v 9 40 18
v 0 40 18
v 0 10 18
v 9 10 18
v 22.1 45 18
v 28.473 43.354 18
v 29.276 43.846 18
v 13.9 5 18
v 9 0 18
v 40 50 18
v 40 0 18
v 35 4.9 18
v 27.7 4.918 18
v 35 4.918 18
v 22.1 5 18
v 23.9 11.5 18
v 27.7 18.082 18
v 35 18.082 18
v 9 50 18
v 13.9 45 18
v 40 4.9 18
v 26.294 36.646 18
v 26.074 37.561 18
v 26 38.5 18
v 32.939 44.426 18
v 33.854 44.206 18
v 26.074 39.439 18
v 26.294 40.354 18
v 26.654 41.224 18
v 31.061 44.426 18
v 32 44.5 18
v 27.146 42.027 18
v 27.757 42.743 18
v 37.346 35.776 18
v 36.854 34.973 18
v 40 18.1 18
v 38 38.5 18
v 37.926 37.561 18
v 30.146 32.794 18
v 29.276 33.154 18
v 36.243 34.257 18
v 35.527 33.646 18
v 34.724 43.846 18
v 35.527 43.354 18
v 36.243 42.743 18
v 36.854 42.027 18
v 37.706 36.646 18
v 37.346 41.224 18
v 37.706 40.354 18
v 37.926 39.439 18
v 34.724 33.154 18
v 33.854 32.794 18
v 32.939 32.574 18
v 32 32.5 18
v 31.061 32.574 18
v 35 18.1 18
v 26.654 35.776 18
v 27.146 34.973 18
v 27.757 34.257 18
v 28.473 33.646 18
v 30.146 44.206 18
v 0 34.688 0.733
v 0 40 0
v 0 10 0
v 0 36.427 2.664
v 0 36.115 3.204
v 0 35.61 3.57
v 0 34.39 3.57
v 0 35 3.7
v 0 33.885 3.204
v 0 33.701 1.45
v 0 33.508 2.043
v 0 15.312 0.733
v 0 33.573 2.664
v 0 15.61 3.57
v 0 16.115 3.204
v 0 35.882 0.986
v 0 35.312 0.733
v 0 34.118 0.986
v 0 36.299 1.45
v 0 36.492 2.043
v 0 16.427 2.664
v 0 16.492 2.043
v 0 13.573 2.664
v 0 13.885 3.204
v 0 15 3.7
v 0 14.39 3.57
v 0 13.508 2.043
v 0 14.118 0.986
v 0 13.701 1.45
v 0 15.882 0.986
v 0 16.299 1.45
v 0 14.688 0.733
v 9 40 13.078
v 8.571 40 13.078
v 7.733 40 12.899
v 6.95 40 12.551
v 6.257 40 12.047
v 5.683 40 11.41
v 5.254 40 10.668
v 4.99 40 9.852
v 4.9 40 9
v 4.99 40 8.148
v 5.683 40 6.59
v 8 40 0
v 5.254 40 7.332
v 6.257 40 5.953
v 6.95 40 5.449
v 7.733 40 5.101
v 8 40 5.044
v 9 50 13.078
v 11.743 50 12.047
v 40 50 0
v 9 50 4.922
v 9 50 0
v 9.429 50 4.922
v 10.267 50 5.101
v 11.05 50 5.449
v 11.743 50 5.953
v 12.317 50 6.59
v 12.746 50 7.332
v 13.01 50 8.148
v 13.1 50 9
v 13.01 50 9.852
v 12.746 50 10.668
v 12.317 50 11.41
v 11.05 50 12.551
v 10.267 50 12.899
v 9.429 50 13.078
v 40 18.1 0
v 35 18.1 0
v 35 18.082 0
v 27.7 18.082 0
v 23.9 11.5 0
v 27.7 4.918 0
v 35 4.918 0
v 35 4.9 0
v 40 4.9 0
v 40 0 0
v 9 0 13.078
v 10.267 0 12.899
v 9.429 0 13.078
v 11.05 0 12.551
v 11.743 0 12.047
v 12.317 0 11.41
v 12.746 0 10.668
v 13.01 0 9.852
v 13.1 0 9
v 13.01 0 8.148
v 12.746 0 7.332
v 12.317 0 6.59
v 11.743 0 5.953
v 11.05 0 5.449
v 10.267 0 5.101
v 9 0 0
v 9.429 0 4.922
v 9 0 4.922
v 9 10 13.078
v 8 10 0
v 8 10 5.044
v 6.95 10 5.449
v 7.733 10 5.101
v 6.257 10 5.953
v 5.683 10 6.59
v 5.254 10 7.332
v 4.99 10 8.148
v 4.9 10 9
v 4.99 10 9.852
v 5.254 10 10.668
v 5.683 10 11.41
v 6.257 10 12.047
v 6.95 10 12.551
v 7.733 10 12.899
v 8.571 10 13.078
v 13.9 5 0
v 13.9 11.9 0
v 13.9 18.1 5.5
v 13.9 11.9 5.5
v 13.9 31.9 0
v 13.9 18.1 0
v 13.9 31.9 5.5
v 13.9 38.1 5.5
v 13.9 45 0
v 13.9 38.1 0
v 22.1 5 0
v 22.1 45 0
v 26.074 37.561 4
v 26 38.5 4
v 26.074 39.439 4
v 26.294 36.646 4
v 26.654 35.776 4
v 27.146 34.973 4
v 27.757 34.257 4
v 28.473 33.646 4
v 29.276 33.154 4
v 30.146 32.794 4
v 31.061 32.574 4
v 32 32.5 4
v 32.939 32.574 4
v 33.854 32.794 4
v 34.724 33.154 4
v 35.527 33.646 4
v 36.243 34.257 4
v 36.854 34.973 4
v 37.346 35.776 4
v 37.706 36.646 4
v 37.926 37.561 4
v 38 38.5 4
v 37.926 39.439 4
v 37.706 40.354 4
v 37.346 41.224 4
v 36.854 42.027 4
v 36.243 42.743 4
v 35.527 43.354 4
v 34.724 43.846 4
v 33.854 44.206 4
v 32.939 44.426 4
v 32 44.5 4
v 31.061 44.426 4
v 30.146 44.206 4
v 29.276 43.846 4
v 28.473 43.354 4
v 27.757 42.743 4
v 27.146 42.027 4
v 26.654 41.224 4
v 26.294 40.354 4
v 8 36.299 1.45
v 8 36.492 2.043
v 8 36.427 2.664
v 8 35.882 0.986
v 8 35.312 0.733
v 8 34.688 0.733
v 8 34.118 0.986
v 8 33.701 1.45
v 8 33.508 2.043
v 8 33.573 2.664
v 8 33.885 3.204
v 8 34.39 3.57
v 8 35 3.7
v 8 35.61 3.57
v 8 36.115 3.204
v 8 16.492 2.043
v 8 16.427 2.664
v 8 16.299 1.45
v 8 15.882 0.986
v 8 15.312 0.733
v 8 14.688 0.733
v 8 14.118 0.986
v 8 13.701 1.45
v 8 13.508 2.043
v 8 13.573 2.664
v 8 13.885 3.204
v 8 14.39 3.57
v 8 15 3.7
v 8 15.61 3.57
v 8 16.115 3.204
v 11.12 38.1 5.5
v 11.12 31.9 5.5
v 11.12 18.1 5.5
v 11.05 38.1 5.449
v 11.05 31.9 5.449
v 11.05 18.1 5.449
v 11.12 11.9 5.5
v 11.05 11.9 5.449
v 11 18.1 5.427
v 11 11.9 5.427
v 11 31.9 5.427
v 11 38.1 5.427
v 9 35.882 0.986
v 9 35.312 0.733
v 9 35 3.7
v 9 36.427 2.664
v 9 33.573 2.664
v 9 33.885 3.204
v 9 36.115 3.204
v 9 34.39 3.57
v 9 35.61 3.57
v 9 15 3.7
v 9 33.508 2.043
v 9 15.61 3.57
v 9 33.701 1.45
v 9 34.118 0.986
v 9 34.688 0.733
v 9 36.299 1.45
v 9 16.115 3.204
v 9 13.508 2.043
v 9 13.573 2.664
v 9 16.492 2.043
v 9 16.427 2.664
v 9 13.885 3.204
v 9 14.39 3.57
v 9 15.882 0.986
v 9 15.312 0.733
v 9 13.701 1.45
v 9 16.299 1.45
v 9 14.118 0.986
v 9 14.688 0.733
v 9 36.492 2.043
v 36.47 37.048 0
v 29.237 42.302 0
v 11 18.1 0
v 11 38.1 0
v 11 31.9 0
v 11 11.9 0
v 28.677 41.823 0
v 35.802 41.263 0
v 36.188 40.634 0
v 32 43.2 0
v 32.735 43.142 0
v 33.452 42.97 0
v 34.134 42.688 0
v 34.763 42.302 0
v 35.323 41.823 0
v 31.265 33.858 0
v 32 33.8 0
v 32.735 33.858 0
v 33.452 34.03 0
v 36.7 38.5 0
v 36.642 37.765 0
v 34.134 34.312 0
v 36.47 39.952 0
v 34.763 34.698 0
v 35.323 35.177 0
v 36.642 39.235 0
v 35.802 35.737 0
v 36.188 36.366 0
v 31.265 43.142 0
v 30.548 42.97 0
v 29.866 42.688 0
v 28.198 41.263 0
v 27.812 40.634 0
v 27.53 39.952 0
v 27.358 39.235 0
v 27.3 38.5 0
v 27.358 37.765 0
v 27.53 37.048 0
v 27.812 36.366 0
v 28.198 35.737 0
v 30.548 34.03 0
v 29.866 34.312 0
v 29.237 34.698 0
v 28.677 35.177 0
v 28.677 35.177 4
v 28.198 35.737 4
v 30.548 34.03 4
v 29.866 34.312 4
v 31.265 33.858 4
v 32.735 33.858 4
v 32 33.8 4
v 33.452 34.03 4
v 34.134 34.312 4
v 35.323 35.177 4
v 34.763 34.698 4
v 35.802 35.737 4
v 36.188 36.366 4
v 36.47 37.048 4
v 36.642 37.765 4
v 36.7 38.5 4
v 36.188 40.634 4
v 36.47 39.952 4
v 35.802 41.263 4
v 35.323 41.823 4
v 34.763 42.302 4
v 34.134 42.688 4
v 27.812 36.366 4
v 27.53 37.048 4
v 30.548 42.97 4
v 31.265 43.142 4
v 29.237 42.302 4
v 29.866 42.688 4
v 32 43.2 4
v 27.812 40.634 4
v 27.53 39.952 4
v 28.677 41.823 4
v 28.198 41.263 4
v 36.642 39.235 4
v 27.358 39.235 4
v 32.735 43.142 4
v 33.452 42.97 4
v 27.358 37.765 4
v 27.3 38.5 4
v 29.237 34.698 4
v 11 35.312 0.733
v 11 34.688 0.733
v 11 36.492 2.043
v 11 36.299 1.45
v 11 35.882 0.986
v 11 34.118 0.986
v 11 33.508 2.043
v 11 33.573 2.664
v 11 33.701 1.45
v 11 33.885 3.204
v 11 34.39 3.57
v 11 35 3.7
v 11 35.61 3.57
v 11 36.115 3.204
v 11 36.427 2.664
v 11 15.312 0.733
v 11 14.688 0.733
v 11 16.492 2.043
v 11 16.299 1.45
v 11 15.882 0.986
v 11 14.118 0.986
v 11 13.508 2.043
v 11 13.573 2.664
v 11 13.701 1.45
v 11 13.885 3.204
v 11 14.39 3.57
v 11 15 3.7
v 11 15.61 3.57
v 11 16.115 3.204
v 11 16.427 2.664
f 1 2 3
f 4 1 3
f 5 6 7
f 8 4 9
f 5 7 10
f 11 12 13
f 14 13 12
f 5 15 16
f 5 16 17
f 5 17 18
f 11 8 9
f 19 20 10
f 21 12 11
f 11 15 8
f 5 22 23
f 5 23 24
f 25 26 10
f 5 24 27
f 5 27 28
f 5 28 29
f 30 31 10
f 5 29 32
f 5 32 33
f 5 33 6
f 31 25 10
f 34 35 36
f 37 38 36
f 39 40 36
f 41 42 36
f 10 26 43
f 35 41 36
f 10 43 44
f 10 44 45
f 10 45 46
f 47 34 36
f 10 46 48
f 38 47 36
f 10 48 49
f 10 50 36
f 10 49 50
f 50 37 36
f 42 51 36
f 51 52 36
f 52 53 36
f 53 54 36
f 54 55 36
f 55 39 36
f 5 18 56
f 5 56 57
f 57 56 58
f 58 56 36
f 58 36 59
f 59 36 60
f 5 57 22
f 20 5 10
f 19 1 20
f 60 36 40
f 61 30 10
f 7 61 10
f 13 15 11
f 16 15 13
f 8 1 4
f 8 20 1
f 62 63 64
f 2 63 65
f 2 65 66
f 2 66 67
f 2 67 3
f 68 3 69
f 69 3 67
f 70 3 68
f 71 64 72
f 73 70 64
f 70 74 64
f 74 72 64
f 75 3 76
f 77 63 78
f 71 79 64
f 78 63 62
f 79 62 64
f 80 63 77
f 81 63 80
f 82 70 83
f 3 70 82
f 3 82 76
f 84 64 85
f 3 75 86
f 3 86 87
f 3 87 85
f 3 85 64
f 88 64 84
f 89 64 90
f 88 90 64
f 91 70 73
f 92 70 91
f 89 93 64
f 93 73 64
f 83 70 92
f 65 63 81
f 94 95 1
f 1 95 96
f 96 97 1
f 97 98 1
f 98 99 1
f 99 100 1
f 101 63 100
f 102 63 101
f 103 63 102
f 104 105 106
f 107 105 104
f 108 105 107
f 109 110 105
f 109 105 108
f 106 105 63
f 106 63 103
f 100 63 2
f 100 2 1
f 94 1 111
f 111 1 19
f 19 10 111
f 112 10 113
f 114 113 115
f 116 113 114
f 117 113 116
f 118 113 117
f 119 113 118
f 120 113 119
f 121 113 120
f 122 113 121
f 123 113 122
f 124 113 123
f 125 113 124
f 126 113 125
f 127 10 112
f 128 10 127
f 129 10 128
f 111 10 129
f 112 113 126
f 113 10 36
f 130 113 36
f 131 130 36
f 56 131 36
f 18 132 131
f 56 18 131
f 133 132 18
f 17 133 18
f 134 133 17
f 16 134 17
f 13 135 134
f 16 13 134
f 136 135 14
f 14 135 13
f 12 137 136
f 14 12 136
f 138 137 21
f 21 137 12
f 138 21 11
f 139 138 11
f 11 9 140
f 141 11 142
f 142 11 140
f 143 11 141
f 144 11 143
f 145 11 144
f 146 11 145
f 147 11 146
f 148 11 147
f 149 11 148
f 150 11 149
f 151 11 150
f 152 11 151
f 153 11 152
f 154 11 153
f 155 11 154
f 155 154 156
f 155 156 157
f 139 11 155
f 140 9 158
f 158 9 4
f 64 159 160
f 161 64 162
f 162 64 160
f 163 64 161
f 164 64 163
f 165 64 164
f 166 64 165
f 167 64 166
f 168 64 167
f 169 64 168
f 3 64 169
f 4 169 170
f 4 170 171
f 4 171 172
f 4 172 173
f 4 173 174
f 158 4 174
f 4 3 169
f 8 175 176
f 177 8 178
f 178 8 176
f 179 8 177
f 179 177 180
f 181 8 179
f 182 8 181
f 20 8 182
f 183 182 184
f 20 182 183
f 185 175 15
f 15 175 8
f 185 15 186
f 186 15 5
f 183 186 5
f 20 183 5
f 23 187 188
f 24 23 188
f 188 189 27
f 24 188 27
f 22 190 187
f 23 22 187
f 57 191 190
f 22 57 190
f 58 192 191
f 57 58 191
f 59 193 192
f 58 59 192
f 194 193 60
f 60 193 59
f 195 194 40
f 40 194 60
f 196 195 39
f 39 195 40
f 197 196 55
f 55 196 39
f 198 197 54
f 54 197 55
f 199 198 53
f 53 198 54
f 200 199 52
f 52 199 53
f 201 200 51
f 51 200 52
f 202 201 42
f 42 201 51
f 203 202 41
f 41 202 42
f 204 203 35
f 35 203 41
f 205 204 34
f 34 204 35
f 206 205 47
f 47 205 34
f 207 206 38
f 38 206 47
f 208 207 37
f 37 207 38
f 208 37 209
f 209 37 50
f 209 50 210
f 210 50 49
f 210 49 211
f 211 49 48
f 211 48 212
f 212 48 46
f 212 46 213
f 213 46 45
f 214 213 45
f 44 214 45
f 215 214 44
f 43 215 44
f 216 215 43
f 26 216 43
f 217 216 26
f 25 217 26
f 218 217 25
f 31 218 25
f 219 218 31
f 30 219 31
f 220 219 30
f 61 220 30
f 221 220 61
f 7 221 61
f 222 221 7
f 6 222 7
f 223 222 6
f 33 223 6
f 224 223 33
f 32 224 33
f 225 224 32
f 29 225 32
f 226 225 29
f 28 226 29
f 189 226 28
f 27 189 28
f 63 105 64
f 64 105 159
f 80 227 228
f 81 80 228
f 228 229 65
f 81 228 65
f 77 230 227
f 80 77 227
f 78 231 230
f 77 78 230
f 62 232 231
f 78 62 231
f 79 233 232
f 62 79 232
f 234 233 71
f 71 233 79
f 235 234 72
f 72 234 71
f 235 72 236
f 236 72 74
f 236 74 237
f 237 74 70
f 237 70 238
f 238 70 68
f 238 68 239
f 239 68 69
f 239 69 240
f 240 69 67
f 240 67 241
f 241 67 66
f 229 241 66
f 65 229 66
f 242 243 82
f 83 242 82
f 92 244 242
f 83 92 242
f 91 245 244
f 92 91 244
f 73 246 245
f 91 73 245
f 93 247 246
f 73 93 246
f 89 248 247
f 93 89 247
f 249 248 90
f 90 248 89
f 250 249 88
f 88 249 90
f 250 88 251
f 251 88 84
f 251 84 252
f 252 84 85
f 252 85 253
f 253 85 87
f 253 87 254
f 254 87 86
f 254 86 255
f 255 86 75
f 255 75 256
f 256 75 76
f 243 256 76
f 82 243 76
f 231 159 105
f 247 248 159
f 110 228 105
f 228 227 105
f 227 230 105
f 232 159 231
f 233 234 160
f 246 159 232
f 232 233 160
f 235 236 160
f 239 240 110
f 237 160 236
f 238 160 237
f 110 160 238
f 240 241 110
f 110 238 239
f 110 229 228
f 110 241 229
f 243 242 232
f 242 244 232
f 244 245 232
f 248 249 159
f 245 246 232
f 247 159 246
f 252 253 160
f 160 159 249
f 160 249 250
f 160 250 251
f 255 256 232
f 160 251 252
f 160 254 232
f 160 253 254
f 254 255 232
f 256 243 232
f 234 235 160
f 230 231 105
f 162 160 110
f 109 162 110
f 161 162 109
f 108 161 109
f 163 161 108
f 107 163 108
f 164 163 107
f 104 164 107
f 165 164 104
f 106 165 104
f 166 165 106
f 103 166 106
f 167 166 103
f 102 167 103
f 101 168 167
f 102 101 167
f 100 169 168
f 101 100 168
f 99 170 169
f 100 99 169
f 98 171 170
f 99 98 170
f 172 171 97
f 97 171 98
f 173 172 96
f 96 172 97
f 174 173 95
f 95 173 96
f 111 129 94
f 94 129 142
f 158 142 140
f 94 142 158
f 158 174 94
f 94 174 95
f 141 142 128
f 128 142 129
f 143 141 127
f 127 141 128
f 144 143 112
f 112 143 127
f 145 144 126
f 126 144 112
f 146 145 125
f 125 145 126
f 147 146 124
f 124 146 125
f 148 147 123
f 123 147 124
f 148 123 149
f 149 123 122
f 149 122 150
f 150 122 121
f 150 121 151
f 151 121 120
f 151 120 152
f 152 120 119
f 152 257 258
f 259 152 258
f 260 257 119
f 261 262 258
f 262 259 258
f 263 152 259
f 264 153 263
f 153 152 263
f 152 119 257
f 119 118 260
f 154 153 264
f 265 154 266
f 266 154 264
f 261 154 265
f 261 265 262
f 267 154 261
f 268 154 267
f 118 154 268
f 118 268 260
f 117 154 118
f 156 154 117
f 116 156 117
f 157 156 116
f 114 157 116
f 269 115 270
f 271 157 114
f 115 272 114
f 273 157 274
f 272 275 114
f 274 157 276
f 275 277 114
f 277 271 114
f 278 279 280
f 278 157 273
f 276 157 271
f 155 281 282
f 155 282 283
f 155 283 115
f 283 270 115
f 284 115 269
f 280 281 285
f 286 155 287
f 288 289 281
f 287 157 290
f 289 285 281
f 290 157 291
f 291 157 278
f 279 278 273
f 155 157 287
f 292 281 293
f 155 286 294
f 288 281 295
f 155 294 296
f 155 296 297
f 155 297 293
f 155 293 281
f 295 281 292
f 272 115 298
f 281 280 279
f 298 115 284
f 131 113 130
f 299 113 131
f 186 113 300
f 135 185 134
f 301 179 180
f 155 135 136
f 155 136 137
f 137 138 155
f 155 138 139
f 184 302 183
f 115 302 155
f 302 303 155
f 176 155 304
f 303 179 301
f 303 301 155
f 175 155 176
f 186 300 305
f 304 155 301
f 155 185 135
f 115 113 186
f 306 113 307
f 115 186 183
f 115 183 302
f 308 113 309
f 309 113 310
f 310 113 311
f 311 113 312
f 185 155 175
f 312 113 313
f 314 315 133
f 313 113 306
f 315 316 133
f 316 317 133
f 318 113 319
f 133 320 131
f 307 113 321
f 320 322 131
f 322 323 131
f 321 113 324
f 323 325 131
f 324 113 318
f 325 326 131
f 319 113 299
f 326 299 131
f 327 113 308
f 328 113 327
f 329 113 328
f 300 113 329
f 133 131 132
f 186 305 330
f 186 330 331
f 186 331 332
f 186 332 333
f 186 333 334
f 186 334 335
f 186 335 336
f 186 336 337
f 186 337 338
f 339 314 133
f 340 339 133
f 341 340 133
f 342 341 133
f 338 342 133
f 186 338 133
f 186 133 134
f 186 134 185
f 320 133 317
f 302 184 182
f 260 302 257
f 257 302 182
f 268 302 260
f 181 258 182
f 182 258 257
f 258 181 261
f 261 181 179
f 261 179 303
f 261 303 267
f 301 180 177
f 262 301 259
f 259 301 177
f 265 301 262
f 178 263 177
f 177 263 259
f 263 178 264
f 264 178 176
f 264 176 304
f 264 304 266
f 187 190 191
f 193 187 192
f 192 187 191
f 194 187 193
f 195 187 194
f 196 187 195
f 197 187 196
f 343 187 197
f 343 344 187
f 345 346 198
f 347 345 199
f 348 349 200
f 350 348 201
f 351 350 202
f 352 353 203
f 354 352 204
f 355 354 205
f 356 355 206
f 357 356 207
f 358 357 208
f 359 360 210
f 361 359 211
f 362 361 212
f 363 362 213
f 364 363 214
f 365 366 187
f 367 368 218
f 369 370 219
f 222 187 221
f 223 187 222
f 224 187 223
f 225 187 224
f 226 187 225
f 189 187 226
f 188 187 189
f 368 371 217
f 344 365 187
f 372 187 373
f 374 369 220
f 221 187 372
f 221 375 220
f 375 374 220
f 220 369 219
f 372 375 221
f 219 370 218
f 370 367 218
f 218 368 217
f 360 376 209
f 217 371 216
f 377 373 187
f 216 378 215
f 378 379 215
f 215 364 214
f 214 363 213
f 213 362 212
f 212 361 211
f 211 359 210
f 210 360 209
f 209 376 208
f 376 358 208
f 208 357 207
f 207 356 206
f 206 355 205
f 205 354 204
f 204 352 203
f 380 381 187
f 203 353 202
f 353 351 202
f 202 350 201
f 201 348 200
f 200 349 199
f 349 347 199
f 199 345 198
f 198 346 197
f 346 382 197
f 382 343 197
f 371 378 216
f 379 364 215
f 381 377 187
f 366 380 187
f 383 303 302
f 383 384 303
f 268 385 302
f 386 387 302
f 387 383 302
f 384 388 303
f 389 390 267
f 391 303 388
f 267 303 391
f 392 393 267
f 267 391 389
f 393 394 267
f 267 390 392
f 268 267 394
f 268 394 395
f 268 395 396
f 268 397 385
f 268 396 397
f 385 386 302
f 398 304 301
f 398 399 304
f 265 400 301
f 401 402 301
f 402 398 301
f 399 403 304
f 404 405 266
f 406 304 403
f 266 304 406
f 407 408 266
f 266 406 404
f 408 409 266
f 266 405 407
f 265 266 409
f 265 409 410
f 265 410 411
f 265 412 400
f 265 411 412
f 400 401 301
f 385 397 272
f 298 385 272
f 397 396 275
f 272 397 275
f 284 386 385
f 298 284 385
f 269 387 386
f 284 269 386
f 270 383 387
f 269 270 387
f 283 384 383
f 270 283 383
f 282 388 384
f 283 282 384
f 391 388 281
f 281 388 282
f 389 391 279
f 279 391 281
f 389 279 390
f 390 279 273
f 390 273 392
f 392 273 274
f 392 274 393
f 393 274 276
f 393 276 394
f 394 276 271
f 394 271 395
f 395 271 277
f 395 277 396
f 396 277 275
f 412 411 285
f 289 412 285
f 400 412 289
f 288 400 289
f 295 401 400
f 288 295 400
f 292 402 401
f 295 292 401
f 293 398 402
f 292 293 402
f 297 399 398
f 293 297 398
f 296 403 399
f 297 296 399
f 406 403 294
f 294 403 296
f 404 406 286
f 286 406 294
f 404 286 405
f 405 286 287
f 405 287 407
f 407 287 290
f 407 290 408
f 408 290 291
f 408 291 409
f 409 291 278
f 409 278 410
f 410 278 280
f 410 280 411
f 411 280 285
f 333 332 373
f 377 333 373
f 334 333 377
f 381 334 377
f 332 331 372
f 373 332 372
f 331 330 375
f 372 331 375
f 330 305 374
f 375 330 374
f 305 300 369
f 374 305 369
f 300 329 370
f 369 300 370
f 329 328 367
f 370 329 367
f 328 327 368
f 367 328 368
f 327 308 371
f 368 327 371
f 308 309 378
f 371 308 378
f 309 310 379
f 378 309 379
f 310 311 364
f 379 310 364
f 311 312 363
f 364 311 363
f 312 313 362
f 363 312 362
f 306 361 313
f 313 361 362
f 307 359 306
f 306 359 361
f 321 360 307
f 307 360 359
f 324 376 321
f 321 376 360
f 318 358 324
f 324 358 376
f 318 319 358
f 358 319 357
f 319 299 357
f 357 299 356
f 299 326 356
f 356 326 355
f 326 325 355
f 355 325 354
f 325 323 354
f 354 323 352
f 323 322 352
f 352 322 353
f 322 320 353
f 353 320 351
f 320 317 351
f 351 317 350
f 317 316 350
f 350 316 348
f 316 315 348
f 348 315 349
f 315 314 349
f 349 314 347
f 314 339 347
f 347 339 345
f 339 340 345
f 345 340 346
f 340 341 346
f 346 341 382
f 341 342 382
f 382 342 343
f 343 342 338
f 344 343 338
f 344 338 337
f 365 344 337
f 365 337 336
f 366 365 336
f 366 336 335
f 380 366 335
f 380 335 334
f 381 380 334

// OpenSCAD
// file: part15.scad
module block() {
difference() {
	cube([40,50,18]);
	translate([13.9,5,-1])cube([8.2,40,23]);
	translate([18,25,5])cylinder(15,r=1.5,$fn=15);

	// втулка
translate([0,0.5,0]) {
	translate([32,11,-1]) cylinder(20,r=4.7,$fn=40);
	translate([32,11,-1]) cylinder(15,r=12/2,$fn=40);
}
	// гайка
translate([0,-0.5,0]) {
	translate([32,39,-1])cylinder(6.4,r=4.7,$fn=40);
	translate([32,39,10])cylinder(9,r=4.7,$fn=40);
	translate([35,32.4,-1])cube([6,13.2,20]);
	translate ([31.5,39,-1]) cylinder(20,r=15.2/2,$fa=60);
}

	// направляющая
	translate([9,-1,9])rotate([-90,0,0])cylinder(52,r=4.1,$fn=30);
	// вырезы у направляющей
	translate([-1,40,-1])cube([10,20,20]);
	translate([-1,-1,-1])cube([10,11,20]);
	translate([8,-1,8])cube([1,52,11]);

	// отверстие 1
	translate([-1,15,15.8])rotate([0,90,0])cylinder(15,r=1.5,$fn=15);
	translate([11,11.9,12.5])cube([3,6.2,6]);

	// отверстие 2
	translate([0,20,0]) {
		translate([-1,15,15.8])rotate([0,90,0])cylinder(15,r=1.5,$fn=15);
		translate([11,11.9,12.5])cube([3,6.2,6]);
	}
}
}
// main file
include <part15.scad>
translate([0,50,18])
rotate([180,0,0])
block();
